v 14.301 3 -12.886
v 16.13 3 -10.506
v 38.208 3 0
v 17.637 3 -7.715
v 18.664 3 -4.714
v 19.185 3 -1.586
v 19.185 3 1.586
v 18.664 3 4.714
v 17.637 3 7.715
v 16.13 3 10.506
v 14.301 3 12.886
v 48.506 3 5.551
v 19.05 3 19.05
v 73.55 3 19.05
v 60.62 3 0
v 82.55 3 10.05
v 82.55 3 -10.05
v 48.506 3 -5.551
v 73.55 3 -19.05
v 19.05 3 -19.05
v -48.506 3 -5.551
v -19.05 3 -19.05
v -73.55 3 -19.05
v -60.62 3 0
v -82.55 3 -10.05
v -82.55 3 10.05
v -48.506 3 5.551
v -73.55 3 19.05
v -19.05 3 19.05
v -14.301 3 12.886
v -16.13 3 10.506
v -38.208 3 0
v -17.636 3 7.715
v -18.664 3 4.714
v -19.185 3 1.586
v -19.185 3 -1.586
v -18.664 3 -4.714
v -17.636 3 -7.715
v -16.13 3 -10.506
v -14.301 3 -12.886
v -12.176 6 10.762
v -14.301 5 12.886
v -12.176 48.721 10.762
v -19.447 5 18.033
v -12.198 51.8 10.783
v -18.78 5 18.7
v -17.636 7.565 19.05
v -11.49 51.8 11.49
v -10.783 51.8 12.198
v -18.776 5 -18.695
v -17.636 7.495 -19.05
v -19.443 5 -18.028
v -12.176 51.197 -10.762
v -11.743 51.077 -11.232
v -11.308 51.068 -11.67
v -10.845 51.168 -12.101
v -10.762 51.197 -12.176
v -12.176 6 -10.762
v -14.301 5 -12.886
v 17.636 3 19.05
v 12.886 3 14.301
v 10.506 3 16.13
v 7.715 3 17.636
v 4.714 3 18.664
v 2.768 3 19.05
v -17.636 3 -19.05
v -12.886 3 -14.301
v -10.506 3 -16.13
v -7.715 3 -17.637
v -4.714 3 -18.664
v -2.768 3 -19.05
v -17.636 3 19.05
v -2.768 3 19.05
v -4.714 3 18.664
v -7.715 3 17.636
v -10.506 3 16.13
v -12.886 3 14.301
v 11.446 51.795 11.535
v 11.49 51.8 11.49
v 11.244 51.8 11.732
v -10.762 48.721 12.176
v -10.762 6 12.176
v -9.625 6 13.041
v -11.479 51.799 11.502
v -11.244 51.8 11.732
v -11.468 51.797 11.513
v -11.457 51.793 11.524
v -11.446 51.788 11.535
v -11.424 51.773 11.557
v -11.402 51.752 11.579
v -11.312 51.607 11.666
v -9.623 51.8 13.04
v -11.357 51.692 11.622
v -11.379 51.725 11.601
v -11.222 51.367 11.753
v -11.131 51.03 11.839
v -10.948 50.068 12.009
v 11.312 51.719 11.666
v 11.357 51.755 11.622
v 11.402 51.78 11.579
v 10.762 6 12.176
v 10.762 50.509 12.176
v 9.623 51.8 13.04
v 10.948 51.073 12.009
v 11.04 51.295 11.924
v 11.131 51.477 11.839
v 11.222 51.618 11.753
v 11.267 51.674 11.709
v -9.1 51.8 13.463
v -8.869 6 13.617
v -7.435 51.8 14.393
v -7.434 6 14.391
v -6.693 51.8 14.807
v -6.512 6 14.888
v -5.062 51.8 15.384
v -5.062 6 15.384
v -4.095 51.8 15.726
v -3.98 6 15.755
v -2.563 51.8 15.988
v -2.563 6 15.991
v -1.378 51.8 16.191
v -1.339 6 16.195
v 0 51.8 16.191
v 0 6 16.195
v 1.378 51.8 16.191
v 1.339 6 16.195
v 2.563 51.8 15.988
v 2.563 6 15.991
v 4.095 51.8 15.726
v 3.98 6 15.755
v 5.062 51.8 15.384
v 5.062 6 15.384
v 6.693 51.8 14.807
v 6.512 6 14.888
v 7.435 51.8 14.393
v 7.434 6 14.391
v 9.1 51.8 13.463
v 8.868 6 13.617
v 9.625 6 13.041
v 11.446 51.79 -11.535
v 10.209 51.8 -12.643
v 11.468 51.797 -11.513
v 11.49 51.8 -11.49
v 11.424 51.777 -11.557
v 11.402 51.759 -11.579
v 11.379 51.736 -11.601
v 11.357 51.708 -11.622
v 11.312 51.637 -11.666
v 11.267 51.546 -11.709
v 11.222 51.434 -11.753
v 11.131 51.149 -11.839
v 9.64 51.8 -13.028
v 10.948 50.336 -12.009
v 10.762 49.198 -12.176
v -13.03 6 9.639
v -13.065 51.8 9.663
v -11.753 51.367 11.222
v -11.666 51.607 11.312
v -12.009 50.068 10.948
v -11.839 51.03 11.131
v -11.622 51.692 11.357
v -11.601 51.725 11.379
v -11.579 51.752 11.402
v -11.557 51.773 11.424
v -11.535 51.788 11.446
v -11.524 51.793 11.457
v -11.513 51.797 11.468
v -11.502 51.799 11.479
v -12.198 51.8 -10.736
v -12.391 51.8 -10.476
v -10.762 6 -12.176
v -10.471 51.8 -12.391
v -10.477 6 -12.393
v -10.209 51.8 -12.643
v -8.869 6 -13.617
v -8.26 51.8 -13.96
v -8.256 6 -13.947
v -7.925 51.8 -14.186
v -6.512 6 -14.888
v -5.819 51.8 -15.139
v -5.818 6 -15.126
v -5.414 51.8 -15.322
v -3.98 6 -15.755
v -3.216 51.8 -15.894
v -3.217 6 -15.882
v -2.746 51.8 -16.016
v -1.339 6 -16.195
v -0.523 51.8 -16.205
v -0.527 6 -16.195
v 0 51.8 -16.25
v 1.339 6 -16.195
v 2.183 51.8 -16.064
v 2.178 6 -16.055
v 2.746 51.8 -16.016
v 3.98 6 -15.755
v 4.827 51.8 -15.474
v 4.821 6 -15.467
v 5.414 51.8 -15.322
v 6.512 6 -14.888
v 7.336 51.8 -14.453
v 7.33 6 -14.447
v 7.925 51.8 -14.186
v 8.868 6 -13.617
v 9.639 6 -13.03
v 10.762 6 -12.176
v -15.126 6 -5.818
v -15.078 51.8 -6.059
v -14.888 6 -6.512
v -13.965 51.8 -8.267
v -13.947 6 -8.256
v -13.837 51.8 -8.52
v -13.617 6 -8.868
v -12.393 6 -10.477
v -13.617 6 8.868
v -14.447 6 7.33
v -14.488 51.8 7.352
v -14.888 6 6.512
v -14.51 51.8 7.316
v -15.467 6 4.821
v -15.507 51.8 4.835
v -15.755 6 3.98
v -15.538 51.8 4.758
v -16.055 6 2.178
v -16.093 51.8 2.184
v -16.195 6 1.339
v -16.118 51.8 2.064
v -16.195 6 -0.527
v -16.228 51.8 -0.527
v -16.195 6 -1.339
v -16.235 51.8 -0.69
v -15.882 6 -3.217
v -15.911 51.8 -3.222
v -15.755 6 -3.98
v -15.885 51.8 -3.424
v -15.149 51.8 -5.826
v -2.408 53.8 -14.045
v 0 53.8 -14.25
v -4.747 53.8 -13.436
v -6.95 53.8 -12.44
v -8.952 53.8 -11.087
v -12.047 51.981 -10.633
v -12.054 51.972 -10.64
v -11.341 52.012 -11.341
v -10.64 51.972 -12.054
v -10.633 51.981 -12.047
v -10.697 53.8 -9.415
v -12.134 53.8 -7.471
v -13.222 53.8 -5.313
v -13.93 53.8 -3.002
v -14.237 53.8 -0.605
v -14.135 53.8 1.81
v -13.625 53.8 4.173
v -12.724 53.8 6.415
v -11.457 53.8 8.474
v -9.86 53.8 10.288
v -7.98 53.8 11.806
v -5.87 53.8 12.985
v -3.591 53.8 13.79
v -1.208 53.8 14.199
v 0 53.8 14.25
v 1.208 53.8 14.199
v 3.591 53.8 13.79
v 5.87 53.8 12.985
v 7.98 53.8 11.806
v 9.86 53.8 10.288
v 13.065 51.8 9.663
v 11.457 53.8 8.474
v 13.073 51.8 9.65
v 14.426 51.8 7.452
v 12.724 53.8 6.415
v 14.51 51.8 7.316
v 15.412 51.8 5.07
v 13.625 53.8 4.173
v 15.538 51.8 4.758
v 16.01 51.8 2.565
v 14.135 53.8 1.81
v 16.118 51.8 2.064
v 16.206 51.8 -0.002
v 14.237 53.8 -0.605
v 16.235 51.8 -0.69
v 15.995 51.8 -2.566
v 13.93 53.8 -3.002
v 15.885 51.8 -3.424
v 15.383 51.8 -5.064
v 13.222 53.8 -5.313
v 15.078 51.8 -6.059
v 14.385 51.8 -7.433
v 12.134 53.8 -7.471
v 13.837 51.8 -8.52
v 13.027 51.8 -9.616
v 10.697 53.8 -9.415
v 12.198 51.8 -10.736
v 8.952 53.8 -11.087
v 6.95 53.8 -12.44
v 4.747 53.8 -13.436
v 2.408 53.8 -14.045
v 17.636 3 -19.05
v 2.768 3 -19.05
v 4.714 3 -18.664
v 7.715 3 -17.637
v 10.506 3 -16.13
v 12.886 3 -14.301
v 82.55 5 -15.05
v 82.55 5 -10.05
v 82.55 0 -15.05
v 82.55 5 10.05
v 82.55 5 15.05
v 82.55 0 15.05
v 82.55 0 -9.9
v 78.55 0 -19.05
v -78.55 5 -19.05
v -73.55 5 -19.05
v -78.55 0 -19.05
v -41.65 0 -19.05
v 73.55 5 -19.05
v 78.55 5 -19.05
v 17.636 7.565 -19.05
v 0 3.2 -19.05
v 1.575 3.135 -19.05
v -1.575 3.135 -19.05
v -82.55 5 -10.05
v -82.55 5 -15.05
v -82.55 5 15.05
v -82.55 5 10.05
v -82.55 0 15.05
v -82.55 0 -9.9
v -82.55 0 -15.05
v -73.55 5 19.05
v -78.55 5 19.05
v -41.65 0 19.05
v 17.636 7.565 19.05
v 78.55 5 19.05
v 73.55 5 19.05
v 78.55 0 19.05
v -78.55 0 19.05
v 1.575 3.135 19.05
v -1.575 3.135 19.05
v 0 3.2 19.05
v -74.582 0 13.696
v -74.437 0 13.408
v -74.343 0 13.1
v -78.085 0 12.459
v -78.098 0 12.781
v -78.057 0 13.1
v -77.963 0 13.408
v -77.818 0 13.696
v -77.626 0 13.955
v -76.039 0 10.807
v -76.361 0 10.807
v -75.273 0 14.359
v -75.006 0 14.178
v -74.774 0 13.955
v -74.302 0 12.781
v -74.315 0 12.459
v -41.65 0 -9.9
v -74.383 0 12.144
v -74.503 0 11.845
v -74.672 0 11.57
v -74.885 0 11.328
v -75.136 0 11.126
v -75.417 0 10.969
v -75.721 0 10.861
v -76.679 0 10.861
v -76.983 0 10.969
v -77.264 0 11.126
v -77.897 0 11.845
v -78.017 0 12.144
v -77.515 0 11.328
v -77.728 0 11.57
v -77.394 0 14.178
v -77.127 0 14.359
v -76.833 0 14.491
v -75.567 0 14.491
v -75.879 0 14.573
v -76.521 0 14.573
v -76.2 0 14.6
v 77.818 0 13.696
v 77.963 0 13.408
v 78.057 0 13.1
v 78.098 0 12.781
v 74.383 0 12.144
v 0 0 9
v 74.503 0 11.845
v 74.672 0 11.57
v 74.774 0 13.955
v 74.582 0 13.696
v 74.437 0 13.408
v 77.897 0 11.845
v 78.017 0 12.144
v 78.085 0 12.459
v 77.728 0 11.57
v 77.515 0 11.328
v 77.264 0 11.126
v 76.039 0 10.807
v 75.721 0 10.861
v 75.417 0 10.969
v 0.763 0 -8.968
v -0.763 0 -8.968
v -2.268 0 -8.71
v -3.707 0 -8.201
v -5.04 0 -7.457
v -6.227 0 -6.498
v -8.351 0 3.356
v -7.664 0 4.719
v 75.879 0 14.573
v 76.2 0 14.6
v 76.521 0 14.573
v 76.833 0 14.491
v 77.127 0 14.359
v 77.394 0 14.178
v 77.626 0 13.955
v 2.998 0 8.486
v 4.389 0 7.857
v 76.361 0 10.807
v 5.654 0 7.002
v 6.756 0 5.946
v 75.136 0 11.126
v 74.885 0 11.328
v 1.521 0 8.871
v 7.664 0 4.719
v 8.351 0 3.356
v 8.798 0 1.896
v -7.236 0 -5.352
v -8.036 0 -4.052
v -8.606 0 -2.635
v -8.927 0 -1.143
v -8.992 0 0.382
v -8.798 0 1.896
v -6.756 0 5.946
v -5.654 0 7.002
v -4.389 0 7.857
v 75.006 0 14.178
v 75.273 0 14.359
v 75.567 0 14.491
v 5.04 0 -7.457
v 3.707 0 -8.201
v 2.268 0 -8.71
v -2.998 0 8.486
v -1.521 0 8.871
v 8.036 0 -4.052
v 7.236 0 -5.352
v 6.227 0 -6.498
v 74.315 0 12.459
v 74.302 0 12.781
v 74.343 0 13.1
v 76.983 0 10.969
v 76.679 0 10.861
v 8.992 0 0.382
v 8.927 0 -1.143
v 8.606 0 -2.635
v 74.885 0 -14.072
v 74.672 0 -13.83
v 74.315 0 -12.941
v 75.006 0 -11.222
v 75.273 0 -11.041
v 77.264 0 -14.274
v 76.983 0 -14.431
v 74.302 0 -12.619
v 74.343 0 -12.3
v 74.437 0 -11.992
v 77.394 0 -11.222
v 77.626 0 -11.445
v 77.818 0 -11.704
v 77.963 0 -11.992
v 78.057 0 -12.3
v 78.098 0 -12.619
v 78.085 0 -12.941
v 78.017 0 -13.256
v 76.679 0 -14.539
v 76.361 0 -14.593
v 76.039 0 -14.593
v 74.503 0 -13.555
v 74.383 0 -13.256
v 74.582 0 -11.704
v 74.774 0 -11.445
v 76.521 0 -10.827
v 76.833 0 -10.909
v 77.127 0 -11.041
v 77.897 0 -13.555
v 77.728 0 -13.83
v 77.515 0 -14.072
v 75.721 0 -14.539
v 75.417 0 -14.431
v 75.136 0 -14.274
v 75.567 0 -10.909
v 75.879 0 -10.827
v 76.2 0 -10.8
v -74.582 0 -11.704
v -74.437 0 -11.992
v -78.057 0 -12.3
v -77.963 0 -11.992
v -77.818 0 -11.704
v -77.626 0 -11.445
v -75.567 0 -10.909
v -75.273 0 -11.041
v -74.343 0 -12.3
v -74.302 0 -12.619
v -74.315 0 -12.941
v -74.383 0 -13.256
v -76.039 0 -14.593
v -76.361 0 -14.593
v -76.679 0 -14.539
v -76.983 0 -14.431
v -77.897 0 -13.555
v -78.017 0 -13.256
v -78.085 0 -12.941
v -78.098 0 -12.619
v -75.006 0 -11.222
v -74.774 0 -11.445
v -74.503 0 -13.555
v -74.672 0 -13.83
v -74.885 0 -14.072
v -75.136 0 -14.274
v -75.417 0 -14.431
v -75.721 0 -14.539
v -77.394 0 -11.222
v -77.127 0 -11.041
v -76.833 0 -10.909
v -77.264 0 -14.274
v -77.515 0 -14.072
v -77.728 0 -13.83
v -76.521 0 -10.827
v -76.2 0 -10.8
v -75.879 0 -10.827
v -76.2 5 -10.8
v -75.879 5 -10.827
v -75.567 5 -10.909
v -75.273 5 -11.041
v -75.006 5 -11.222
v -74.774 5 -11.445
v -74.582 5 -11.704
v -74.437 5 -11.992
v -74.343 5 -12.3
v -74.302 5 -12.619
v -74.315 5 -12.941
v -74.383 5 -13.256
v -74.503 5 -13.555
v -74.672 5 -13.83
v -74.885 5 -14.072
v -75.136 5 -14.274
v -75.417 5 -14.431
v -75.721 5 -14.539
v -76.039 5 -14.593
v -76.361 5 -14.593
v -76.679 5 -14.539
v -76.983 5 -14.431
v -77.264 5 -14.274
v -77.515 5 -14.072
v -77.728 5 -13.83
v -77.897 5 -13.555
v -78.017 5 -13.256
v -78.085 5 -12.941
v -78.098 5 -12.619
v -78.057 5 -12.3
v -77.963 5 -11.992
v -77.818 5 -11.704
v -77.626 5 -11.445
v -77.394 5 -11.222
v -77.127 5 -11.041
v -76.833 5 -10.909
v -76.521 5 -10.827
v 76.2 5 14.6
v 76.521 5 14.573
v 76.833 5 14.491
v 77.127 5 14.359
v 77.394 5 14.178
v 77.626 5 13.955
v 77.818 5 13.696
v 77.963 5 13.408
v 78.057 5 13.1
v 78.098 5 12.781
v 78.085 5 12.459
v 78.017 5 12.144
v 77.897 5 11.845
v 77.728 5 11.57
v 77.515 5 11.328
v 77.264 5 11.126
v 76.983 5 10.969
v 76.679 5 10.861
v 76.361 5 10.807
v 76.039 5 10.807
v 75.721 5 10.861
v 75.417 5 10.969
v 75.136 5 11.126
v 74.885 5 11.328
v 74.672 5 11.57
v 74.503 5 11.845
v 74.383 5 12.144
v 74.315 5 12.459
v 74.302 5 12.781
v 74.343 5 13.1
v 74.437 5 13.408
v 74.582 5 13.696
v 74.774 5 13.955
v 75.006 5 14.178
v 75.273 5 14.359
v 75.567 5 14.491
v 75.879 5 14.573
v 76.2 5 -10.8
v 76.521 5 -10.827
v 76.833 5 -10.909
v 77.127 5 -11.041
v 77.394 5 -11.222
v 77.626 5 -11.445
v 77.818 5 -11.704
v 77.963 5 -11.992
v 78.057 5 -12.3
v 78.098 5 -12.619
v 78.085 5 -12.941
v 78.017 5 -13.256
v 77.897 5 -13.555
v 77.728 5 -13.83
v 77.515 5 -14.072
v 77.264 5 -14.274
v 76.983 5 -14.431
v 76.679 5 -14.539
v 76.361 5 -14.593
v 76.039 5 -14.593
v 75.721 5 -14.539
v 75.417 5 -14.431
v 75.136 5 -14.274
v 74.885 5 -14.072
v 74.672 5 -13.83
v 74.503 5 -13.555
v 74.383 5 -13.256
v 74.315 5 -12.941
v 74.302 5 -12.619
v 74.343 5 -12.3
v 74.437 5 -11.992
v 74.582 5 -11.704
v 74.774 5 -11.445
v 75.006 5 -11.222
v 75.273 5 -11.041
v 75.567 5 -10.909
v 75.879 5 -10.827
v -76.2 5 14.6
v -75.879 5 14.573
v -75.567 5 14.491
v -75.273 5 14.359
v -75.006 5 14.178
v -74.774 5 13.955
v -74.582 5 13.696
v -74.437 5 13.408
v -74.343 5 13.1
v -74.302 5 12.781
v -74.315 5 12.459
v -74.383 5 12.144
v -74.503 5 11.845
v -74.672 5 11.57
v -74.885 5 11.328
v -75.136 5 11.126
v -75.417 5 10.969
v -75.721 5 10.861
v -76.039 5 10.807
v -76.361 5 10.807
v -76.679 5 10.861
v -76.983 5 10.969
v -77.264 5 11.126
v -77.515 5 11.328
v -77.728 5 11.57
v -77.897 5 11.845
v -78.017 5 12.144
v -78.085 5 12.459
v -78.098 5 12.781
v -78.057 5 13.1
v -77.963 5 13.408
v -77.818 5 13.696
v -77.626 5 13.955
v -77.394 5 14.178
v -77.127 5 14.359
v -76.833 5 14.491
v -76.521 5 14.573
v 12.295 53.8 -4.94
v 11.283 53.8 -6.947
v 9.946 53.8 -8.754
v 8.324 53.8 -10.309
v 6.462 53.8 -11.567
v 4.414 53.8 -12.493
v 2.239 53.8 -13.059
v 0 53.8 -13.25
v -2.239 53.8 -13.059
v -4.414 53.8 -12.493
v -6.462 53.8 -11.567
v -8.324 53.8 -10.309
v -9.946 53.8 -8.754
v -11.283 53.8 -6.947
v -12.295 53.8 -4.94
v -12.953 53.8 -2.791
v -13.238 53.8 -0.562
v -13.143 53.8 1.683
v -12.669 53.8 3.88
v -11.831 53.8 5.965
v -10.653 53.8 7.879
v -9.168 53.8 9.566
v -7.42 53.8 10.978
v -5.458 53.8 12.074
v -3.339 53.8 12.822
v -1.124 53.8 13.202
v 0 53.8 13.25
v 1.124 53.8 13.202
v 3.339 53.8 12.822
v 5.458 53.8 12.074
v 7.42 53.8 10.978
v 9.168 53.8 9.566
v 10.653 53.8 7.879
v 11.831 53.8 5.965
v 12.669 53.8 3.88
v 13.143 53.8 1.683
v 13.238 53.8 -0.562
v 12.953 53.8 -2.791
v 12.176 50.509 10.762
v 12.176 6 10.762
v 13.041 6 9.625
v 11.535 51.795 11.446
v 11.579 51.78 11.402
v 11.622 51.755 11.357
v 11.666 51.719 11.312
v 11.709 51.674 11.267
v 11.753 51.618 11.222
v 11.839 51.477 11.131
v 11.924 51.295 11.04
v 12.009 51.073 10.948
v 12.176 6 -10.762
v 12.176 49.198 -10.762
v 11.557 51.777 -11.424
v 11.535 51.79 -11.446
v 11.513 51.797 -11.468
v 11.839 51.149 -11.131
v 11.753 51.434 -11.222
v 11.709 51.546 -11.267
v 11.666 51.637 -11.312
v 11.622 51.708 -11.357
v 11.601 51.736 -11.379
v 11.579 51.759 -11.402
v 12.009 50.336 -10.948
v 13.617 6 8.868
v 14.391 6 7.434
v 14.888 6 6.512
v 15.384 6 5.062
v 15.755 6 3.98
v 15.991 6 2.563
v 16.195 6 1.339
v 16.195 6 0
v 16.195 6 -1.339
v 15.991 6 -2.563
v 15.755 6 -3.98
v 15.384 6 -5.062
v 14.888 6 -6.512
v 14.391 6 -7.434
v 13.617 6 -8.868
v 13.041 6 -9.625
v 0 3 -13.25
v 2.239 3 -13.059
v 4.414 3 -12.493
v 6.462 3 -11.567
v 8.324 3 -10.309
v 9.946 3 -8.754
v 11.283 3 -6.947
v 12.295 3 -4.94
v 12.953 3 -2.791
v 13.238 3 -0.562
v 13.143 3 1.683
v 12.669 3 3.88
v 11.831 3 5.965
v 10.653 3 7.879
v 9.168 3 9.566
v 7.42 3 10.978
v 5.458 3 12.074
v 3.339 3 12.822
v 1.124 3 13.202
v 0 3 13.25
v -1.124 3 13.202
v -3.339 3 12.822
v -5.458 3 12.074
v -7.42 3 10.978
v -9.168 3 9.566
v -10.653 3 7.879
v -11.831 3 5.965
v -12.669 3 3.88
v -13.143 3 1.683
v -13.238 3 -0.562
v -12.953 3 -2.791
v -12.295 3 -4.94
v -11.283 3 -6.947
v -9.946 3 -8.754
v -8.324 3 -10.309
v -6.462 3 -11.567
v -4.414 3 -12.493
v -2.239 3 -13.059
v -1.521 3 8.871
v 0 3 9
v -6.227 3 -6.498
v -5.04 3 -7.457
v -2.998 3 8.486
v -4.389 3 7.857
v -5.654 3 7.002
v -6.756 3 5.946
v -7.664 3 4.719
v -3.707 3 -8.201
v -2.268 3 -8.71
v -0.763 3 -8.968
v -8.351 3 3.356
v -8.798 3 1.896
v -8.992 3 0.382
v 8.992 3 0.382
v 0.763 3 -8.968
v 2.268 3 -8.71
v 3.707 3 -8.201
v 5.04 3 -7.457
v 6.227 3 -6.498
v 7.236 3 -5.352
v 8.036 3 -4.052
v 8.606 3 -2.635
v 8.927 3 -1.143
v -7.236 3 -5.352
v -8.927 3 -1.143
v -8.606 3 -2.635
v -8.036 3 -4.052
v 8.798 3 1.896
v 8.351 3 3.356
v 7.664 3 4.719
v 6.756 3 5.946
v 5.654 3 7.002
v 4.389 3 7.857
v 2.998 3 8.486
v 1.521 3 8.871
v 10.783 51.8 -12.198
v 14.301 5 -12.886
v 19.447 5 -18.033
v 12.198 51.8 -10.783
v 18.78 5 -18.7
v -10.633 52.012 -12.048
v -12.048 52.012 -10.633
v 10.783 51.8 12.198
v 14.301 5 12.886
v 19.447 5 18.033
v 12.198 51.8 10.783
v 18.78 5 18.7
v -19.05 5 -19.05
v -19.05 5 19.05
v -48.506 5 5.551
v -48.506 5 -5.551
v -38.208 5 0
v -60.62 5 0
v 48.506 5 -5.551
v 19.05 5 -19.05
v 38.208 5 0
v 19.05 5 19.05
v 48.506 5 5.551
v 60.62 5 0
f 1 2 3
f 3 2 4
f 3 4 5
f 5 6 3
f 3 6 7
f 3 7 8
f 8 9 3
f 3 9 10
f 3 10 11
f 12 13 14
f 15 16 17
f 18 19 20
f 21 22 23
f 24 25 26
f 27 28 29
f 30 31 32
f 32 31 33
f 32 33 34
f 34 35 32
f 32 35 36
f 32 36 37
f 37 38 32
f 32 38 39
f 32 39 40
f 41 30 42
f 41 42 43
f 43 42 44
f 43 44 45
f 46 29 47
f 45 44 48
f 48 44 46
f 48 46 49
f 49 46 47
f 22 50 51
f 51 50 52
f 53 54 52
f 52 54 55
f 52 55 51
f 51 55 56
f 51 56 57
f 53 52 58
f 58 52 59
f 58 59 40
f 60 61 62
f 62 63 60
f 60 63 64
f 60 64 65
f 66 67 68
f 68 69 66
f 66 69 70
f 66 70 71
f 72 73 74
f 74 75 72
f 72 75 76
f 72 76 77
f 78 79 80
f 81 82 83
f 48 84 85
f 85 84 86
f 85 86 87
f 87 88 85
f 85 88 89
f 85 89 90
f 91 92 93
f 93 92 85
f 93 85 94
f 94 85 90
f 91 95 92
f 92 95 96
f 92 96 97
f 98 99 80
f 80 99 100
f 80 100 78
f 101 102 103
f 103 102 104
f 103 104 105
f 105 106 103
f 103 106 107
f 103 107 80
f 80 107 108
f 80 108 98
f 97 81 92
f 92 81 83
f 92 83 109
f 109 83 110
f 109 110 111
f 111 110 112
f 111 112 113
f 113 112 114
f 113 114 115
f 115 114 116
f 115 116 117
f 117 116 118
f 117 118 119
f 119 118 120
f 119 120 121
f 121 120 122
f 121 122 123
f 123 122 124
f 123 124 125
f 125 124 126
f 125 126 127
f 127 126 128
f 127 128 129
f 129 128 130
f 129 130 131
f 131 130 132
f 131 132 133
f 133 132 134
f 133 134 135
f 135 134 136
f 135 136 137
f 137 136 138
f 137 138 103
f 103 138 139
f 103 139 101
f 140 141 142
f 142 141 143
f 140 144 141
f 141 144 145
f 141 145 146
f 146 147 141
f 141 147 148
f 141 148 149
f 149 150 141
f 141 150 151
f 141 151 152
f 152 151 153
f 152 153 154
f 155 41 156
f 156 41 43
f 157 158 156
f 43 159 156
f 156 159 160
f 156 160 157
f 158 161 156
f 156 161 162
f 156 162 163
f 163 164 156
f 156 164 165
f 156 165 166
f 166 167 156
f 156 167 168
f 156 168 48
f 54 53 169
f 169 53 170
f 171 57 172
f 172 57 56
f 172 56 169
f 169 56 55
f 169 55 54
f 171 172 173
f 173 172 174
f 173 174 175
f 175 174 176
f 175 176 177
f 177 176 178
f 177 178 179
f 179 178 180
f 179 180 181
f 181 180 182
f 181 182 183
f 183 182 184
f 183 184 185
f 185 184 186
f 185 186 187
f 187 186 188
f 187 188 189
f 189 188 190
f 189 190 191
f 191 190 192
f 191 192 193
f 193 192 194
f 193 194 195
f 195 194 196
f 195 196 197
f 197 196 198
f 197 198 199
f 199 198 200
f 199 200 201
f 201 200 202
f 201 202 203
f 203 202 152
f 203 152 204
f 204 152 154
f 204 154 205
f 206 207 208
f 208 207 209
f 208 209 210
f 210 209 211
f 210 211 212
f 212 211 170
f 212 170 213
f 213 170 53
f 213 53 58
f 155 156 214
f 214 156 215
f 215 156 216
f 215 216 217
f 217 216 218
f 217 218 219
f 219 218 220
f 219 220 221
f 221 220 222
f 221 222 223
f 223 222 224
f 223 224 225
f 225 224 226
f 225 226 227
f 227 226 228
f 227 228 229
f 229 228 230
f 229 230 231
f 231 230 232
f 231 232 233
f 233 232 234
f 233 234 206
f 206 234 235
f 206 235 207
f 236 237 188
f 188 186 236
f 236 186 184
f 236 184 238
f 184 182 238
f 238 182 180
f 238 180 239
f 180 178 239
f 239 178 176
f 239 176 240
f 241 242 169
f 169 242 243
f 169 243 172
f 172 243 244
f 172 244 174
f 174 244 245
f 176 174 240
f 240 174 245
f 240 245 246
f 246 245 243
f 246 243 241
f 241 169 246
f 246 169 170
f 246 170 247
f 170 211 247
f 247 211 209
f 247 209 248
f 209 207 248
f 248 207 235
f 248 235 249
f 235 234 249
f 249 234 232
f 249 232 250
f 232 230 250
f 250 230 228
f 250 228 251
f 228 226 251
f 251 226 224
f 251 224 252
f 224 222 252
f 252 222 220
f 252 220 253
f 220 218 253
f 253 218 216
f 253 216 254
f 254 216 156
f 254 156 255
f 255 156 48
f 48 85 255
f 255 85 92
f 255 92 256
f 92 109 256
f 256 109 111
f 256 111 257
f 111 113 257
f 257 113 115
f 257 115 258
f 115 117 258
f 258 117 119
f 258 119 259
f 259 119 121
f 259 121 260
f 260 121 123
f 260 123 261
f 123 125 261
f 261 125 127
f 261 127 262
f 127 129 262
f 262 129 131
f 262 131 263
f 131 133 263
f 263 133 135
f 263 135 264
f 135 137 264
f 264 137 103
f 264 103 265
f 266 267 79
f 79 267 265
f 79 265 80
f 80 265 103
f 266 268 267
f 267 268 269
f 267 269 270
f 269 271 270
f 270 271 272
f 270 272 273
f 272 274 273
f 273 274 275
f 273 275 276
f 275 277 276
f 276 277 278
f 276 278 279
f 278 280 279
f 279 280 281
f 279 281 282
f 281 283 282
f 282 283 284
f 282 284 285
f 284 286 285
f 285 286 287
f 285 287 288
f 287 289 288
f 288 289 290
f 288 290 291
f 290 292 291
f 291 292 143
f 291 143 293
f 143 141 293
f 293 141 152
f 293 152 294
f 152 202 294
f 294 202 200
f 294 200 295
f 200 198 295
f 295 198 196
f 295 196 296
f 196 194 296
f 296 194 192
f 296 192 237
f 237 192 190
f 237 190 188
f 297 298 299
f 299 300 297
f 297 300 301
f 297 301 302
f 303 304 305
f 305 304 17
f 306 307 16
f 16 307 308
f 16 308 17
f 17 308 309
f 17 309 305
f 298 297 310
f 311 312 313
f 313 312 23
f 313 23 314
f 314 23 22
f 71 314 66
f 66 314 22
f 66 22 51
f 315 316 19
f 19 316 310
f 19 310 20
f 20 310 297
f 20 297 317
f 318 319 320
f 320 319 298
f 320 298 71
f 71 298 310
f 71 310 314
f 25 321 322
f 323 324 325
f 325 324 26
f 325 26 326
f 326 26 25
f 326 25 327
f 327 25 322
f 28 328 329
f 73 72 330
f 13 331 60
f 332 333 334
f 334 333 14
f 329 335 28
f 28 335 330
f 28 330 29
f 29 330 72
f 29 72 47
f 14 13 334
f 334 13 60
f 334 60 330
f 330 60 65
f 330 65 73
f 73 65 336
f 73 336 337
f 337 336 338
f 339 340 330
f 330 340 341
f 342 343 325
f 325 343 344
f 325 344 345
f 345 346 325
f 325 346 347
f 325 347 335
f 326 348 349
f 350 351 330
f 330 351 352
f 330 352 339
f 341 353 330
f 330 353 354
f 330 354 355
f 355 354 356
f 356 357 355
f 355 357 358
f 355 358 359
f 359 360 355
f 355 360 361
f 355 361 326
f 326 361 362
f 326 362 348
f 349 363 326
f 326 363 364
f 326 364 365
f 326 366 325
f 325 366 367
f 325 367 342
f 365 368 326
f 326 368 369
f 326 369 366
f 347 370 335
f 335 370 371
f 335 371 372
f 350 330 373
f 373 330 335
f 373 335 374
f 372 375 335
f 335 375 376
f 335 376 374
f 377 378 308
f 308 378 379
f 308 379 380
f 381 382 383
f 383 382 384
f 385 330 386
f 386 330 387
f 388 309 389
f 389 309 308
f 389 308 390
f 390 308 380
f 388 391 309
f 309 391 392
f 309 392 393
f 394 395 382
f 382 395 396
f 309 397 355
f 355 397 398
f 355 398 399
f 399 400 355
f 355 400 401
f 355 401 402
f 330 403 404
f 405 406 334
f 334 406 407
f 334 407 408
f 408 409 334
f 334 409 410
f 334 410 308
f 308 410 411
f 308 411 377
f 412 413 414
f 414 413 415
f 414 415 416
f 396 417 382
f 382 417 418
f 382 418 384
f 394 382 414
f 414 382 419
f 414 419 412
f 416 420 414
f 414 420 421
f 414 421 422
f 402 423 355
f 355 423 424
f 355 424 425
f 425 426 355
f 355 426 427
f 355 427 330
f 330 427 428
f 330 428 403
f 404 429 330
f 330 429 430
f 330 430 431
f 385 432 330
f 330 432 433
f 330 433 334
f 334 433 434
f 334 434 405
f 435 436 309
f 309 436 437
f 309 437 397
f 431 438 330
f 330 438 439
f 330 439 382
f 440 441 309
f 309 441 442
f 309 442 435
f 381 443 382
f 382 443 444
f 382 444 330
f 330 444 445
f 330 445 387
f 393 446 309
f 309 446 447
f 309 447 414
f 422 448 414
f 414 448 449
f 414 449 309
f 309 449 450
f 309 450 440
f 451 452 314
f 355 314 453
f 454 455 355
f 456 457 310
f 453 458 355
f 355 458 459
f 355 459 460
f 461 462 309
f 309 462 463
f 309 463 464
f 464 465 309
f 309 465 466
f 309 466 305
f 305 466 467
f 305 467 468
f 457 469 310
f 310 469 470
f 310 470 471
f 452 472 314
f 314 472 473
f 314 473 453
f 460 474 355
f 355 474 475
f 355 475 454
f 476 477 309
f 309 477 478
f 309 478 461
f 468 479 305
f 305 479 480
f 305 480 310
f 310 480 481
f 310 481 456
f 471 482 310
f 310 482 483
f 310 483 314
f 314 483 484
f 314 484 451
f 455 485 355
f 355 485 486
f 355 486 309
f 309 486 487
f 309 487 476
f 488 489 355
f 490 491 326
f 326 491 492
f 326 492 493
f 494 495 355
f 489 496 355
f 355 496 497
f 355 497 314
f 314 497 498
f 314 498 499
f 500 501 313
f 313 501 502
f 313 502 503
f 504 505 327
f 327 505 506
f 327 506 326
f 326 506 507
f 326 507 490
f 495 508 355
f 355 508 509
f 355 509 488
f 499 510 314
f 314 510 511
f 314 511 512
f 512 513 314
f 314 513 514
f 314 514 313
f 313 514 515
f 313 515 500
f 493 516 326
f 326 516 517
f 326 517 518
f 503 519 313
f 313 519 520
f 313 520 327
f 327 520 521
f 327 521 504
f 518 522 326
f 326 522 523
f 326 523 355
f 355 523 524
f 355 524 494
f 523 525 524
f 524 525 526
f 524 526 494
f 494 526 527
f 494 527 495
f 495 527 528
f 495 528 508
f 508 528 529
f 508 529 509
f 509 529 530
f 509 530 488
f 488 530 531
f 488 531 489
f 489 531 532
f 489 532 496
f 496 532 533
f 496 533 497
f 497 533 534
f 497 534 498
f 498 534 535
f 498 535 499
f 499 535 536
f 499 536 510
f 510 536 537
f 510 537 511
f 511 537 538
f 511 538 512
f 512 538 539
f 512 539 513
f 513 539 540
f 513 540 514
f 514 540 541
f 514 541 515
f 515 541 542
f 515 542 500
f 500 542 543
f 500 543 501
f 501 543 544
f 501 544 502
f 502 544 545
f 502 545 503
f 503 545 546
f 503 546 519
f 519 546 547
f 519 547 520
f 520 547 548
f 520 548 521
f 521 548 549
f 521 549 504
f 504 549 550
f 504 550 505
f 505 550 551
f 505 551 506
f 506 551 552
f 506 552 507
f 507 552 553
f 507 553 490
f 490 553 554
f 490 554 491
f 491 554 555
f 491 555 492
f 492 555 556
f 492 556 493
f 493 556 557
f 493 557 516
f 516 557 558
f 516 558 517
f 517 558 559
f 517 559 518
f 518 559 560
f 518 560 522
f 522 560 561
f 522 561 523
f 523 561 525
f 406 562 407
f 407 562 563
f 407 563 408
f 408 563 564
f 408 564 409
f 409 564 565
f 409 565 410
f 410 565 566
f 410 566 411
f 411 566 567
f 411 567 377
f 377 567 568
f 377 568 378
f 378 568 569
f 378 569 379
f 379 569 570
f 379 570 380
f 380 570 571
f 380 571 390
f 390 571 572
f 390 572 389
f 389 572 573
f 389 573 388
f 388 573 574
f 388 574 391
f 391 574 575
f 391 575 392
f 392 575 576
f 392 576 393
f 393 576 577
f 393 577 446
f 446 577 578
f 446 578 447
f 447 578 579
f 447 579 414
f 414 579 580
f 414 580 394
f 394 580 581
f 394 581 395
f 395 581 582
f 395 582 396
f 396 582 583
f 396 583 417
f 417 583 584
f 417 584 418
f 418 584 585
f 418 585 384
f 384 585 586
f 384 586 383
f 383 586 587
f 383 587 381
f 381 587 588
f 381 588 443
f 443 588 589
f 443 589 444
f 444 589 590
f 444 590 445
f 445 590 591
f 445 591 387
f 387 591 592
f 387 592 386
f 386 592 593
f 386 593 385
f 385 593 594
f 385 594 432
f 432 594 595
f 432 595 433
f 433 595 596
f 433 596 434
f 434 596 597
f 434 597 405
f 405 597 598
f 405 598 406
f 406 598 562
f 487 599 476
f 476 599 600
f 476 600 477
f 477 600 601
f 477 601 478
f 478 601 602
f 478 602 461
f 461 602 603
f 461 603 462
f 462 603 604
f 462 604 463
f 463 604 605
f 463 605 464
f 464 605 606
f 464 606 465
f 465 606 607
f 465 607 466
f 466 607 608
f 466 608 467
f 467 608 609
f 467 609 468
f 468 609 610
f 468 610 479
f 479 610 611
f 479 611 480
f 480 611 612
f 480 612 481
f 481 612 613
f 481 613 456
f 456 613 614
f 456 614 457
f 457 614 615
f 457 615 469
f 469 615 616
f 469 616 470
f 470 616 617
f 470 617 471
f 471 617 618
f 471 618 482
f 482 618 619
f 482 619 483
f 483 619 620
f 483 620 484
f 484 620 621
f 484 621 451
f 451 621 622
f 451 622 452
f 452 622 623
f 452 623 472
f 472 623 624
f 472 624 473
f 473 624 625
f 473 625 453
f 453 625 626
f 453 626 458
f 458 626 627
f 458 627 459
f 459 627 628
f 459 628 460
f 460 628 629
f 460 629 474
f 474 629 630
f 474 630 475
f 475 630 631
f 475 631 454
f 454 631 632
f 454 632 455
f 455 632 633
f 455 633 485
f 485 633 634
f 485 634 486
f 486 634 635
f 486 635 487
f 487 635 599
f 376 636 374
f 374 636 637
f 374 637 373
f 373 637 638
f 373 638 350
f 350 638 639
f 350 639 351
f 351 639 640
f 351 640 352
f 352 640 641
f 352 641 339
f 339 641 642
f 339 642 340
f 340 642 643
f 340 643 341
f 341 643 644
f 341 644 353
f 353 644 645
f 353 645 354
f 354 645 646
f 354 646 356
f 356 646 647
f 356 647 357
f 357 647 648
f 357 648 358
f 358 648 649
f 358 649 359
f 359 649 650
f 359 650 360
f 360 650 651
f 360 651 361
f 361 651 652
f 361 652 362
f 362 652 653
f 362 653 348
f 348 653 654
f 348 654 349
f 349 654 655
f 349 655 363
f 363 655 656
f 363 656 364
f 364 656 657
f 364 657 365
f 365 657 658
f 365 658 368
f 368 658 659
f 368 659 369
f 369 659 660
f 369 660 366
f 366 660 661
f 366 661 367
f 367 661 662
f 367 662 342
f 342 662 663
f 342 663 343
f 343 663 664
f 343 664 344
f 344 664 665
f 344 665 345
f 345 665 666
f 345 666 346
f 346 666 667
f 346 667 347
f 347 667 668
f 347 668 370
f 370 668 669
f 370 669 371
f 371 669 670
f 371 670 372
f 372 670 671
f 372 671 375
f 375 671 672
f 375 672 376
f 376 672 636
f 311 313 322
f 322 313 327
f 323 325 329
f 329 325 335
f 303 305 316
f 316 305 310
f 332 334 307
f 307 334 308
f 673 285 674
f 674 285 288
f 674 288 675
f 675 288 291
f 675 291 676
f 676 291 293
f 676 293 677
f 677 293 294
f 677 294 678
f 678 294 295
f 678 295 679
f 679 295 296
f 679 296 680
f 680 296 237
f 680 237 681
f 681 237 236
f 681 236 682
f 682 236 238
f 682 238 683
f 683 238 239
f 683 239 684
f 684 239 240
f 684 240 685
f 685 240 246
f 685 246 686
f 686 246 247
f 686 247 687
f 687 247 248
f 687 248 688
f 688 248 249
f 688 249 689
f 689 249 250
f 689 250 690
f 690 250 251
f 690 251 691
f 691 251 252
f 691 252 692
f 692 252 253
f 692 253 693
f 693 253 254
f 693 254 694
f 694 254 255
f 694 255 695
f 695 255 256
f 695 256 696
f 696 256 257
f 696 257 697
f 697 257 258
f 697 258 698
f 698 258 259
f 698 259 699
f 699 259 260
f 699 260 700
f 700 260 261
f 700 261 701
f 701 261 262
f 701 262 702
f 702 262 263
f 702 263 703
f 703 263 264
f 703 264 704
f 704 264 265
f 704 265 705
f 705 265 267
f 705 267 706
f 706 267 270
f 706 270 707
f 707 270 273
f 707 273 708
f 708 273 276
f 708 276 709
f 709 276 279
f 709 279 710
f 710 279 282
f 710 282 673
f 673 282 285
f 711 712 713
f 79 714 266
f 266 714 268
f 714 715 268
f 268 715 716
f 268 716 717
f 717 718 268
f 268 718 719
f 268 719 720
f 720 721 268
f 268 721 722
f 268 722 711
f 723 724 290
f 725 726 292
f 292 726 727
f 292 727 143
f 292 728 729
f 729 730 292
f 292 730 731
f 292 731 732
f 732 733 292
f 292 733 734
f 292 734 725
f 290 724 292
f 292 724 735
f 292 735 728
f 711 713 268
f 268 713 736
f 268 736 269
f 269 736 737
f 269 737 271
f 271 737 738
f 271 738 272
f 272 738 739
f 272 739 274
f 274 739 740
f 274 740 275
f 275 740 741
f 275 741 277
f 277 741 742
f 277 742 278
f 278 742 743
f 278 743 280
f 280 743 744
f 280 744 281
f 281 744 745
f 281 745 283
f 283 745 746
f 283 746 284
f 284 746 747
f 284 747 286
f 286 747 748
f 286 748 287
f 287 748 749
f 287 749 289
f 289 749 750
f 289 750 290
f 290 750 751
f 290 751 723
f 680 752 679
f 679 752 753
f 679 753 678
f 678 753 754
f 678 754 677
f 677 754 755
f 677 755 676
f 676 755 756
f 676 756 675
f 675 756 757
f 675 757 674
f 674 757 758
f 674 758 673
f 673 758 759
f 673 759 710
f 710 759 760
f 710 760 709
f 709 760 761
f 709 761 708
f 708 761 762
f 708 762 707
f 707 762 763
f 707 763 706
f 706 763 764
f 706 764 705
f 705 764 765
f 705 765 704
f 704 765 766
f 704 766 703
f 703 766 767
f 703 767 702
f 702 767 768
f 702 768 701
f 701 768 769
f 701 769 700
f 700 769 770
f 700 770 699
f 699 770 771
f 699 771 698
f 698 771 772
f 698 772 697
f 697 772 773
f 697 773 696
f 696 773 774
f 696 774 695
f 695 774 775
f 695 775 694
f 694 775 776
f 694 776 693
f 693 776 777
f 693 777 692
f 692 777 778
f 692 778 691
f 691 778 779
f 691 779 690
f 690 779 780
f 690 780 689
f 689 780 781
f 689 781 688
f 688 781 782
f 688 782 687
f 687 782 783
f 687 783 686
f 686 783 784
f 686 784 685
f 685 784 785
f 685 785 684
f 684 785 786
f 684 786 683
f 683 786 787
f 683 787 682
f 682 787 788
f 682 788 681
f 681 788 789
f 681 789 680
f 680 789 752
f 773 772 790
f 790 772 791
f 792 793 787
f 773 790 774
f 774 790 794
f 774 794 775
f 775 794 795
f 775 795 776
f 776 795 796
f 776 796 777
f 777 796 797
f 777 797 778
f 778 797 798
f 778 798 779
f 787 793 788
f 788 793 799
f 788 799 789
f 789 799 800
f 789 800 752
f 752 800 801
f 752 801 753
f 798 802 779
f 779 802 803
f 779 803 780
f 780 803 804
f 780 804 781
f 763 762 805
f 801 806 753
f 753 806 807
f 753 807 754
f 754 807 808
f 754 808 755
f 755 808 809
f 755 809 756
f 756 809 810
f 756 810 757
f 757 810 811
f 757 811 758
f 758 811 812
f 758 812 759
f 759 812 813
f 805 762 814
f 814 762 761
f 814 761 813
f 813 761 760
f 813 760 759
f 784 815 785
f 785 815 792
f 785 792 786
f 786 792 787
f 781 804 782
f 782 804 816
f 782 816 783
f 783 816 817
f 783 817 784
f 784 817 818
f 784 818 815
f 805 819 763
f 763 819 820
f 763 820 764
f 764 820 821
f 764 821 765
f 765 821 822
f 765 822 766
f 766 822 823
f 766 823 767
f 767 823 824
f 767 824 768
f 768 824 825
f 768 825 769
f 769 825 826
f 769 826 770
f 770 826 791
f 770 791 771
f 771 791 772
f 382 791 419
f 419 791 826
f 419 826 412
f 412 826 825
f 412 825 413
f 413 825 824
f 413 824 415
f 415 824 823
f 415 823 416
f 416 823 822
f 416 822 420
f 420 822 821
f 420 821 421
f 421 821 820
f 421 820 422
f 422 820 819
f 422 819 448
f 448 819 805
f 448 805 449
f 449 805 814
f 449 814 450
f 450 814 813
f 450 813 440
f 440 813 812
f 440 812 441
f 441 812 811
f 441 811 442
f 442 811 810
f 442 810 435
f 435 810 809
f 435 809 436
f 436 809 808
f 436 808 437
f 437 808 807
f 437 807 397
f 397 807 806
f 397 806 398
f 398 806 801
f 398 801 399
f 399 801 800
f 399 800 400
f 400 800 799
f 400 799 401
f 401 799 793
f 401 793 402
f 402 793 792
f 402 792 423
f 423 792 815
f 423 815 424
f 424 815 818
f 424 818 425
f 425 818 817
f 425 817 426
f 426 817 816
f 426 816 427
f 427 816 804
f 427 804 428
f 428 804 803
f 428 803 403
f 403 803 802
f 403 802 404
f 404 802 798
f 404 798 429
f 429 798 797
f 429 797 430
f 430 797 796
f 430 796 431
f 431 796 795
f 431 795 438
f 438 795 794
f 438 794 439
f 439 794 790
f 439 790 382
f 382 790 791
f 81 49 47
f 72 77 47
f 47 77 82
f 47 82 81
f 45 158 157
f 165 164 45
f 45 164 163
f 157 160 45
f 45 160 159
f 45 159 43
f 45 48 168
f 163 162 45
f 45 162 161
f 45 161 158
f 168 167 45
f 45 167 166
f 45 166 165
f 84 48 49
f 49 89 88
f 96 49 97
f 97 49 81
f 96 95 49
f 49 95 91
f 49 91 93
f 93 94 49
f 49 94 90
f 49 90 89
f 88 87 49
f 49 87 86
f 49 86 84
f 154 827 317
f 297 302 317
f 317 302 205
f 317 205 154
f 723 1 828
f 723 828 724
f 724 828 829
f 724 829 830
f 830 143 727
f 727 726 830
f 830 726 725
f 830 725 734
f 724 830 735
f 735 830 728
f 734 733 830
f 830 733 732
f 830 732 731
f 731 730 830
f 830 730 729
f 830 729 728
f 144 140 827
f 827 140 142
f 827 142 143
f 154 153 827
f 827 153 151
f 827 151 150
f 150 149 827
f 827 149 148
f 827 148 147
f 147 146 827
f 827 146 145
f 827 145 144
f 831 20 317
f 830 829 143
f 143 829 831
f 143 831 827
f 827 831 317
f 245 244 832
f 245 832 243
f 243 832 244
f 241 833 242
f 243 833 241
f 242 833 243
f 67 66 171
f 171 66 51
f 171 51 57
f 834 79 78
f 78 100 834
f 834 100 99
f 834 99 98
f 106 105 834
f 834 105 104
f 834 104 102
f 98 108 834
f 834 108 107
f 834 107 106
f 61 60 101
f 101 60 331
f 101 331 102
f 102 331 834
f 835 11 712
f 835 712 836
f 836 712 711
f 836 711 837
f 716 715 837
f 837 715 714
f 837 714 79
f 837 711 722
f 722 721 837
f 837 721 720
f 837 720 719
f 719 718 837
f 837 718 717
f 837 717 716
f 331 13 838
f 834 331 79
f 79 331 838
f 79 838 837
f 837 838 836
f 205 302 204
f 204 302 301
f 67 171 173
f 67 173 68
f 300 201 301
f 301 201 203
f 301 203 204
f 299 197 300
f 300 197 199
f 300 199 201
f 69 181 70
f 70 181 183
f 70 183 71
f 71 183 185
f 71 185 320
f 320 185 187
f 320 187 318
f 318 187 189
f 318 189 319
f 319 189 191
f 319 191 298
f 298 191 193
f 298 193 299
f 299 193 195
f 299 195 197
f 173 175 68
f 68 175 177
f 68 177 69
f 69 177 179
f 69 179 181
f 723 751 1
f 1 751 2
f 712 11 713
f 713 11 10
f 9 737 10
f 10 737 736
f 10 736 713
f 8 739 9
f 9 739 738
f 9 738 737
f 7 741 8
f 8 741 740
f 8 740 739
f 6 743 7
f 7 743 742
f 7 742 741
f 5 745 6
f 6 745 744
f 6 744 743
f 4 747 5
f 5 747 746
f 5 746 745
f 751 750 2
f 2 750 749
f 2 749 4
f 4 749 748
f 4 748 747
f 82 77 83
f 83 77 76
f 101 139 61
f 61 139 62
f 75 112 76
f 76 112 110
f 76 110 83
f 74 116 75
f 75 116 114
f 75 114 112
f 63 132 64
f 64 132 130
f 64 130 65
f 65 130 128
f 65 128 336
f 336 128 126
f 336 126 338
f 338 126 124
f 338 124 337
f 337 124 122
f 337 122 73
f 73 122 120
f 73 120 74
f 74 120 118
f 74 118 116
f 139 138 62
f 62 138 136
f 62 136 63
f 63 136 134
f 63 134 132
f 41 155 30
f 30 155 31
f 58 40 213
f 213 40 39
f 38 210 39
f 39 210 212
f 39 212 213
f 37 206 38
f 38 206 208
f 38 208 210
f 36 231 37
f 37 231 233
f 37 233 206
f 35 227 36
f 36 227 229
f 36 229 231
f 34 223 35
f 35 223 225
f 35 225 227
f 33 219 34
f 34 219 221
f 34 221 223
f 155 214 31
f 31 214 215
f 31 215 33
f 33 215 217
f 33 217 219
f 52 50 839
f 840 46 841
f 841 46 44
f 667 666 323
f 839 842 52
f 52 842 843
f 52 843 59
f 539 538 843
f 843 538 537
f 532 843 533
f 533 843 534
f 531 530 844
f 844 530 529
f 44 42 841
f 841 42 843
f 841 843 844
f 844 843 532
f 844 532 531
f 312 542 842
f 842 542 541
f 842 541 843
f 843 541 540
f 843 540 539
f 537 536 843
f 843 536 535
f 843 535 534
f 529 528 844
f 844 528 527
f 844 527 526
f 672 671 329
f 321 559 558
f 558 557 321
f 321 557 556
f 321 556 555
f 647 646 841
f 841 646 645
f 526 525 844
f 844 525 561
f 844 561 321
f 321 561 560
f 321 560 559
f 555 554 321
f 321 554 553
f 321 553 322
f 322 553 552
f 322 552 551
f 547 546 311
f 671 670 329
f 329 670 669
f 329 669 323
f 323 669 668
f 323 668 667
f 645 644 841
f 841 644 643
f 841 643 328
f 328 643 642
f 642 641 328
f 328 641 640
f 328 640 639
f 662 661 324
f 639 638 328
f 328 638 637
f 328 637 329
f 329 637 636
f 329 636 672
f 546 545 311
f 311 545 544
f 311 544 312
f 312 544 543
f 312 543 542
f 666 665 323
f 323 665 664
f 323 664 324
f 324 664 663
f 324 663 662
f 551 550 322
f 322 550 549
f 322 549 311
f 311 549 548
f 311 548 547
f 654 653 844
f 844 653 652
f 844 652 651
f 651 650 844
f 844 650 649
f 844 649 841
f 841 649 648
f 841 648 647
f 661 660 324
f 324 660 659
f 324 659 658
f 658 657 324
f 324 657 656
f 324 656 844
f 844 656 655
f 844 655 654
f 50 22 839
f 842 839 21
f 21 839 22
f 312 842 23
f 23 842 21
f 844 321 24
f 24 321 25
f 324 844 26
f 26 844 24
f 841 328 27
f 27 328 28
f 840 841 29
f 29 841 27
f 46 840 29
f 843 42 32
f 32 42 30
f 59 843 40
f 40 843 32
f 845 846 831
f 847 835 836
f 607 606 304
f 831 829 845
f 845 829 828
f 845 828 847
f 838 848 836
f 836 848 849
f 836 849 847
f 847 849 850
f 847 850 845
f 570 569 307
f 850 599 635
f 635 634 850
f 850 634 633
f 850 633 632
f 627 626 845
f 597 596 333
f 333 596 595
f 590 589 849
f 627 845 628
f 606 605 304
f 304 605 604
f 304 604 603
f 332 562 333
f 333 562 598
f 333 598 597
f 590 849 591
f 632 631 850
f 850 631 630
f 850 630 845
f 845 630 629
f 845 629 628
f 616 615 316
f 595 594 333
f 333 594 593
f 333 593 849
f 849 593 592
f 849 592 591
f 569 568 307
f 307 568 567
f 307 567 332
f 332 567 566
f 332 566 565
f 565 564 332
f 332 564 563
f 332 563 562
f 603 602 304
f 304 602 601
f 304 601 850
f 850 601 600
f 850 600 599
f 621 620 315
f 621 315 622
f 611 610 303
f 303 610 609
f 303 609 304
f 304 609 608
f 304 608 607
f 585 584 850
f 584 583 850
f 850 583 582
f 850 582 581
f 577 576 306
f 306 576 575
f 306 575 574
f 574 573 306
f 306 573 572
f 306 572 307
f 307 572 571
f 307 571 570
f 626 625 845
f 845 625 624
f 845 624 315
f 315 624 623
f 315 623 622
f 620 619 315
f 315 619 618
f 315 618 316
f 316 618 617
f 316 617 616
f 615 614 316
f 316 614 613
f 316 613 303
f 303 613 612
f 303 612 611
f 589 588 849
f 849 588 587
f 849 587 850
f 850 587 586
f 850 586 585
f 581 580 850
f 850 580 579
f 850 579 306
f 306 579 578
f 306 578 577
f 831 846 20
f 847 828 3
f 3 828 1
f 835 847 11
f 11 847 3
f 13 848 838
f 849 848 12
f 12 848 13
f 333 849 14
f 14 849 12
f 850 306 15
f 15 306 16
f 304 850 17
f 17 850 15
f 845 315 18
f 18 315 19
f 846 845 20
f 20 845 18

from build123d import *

# Parameters (mm, degrees)
SKETCH1_W                = 165.1
SKETCH1_H                = 38.1
BOSS_EXTRUDE1_DEPTH      = 3
SKETCH2_R                = 1.9
CUT_EXTRUDE1_DEPTH       = 3
CHAMFER1_SIZE            = 4
SKETCH3_R                = 16.25
SKETCH3_R_2              = 13.25
BOSS_EXTRUDE2_DEPTH      = 50.8
SKETCH4_R                = 9
CUT_EXTRUDE2_DEPTH       = 50.8
CHAMFER2_SIZE            = 2
BOSS_EXTRUDE5_DEPTH      = 1
BOSS_EXTRUDE5_DEPTH_BACK = 1
BOSS_EXTRUDE6_DEPTH      = 1
BOSS_EXTRUDE6_DEPTH_BACK = 1
SKETCH10_W               = 48.027930054
SKETCH10_H               = 3.446227712
SKETCH10_W_2             = 45.229873501
SKETCH10_H_2             = 2.308850273
CUT_EXTRUDE3_DEPTH       = 51
CHAMFER3_SIZE            = 3
BOSS_EXTRUDE7_START      = 2
SKETCH12_R               = 1.9
BOSS_EXTRUDE7_DEPTH      = 2


with BuildPart() as part:
    # Sketch1 → Boss-Extrude1 (new body)
    with BuildSketch(Plane(origin=(0, 0, 0), x_dir=(1, 0, 0), z_dir=(0, 1, 0))):
        Rectangle(SKETCH1_W, SKETCH1_H)
    extrude(amount=BOSS_EXTRUDE1_DEPTH)

    # Sketch2 → Cut-Extrude1 (cut)
    with BuildSketch(Plane(origin=(0, 3, 0), x_dir=(1, 0, 0), z_dir=(0, 1, 0))):
        with Locations(Location((-76.2, 12.7, 0), (0, 0, 270))):
            Circle(SKETCH2_R)
        with Locations(Location((-76.2, -12.7, 0), (0, 0, 270))):
            Circle(SKETCH2_R)
        with Locations(Location((76.2, 12.7, 0), (0, 0, 270))):
            Circle(SKETCH2_R)
        with Locations(Location((76.2, -12.7, 0), (0, 0, 270))):
            Circle(SKETCH2_R)
    extrude(amount=-CUT_EXTRUDE1_DEPTH, mode=Mode.SUBTRACT)

    # Chamfer1
    chamfer1_edges = [part.edges().sort_by_distance(p)[0] for p in [
        (82.55, 1.5, 19.05),
        (-82.55, 1.5, 19.05),
        (-82.55, 1.5, -19.05),
        (82.55, 1.5, -19.05),
    ]]
    chamfer(chamfer1_edges, length=CHAMFER1_SIZE)

    # Sketch3 → Boss-Extrude2 (add)
    with BuildSketch(Plane(origin=(0, 3, 0), x_dir=(1, 0, 0), z_dir=(0, 1, 0))):
        with Locations(Location((0, 0, 0), (0, 0, 270))):
            Circle(SKETCH3_R)
        with Locations(Location((0, 0, 0), (0, 0, 270))):
            Circle(SKETCH3_R_2, mode=Mode.SUBTRACT)
    extrude(amount=BOSS_EXTRUDE2_DEPTH)

    # Sketch4 → Cut-Extrude2 (cut)
    with BuildSketch(Plane(origin=(0, 3, 0), x_dir=(1, 0, 0), z_dir=(0, 1, 0))):
        with Locations(Location((0, 0, 0), (0, 0, 270))):
            Circle(SKETCH4_R)
    extrude(amount=-CUT_EXTRUDE2_DEPTH, mode=Mode.SUBTRACT)

    # Chamfer2
    chamfer2_edges = [part.edges().sort_by_distance(p)[0] for p in [
        (0, 53.8, -16.25),
    ]]
    chamfer(chamfer2_edges, length=CHAMFER2_SIZE)

    # Sketch8 → Boss-Extrude5 (add, two sides: drawn at the far end of the back side and taken through both)
    with BuildSketch(Plane(origin=(0, 0, 0), x_dir=(0.7071067811865465, 0, -0.7071067811865486), z_dir=(0.7071067811865486, 0, 0.7071067811865465)).offset(-BOSS_EXTRUDE5_DEPTH_BACK)):
        Polygon((-16.25, 51.8), (-26.940768363, 3), (-15.761884805, 3), align=None)
        Polygon((16.25, 51.8), (26.940768363, 3), (15.672352265, 3), align=None)
    extrude(amount=BOSS_EXTRUDE5_DEPTH + BOSS_EXTRUDE5_DEPTH_BACK)

    # Sketch9 → Boss-Extrude6 (add, two sides: drawn at the far end of the back side and taken through both)
    with BuildSketch(Plane(origin=(0, 0, 0), x_dir=(-0.7071067811865513, 0, -0.7071067811865437), z_dir=(0.7071067811865437, 0, -0.7071067811865513)).offset(-BOSS_EXTRUDE6_DEPTH_BACK)):
        Polygon((16.03800498, 52.01199502), (26.940768363, 3), (15.332503188, 3), align=None)
        Polygon((-15.086213557, 3), (-16.25, 51.8), (-26.940768363, 3), align=None)
    extrude(amount=BOSS_EXTRUDE6_DEPTH + BOSS_EXTRUDE6_DEPTH_BACK)

    # Sketch10 → Cut-Extrude3 (cut)
    with BuildSketch(Plane.XZ):
        with Locations((0.613627604, 20.773113856)):
            Rectangle(SKETCH10_W, SKETCH10_H)
        with Locations((-0.375624438, -20.204425136)):
            Rectangle(SKETCH10_W_2, SKETCH10_H_2)
    extrude(amount=-CUT_EXTRUDE3_DEPTH, mode=Mode.SUBTRACT)

    # Chamfer3
    # the kernel refuses this chamfer: 3 mm, written as the material it adds along each edge
    with BuildSketch(Plane(origin=(0, 3, 0), x_dir=(-0.363517845184437, 0, -0.9315872349020589), z_dir=(0.9315872349020589, 0, -0.363517845184437))) as chamfer3_piece_1:
        Polygon((16.25 + CHAMFER3_SIZE, 0), (16.25, CHAMFER3_SIZE), (16.25, 0), align=None)
    revolve(axis=Axis((0, 3, 0), (0, 1, 0)), revolution_arc=137.36720641)
    with BuildSketch(Plane(origin=(0, 3, 0), x_dir=(0.3635178451844628, 0, 0.9315872349020488), z_dir=(-0.9315872349020488, 0, 0.3635178451844628))) as chamfer3_piece_2:
        Polygon((16.25 + CHAMFER3_SIZE, 0), (16.25, CHAMFER3_SIZE), (16.25, 0), align=None)
    revolve(axis=Axis((0, 3, 0), (0, 1, 0)), revolution_arc=137.36720641)
    with BuildSketch(Plane(origin=(0, 3, 0), x_dir=(-0.9315872349020518, 0, 0.363517845184455), z_dir=(-0.363517845184455, 0, -0.9315872349020518))) as chamfer3_piece_3_section:
        Polygon((16.25, CHAMFER3_SIZE), (16.25 + CHAMFER3_SIZE, 0), (16.25, 0), align=None)
    chamfer3_piece_3 = revolve(axis=Axis((0, 3, 0), (0, 1, 0)), revolution_arc=137.36720641, mode=Mode.PRIVATE)
    chamfer3_piece_3 = split(chamfer3_piece_3, bisect_by=Plane(origin=(-14.04599825, 3.973842114, 19.05), z_dir=(0, 0, -1)), keep=Keep.TOP, mode=Mode.PRIVATE)
    add(chamfer3_piece_3)
    with BuildSketch(Plane(origin=(0, 3, 0), x_dir=(0.9315872349020476, 0, -0.3635178451844656), z_dir=(0.3635178451844656, 0, 0.9315872349020476))) as chamfer3_piece_4_section:
        Polygon((16.25 + CHAMFER3_SIZE, 0), (16.25, CHAMFER3_SIZE), (16.25, 0), align=None)
    chamfer3_piece_4 = revolve(axis=Axis((0, 3, 0), (0, 1, 0)), revolution_arc=137.36720641, mode=Mode.PRIVATE)
    chamfer3_piece_4 = split(chamfer3_piece_4, bisect_by=Plane(origin=(14.045998398, 3.973842011, -19.05), z_dir=(0, 0, 1)), keep=Keep.TOP, mode=Mode.PRIVATE)
    add(chamfer3_piece_4)

    # Sketch12 → Boss-Extrude7 (add)
    # profile 1 of 2: a face of its own
    with BuildSketch(Plane(origin=(0, 3, 0), x_dir=(1, 0, 0), z_dir=(0, 1, 0)).offset(BOSS_EXTRUDE7_START)):
        Polygon((-19.05, 19.05), (-48.506345534, 5.551107795), (-73.55, 19.05), (-78.55, 19.05), (-82.55, 15.05), (-82.55, 10.05), (-60.619587629, 0), (-82.55, -10.05), (-82.55, -15.05), (-78.55, -19.05), (-73.55, -19.05), (-48.506345534, -5.551107795), (-19.05, -19.05), (-14.300533501, -12.886319939), (-38.207720772, 0), (-14.300533501, 12.886319939), align=None)
        with Locations(Location((-76.2, 12.7, 0), (0, 0, 270))):
            Circle(SKETCH12_R, mode=Mode.SUBTRACT)
        with Locations(Location((-76.2, -12.7, 0), (0, 0, 270))):
            Circle(SKETCH12_R, mode=Mode.SUBTRACT)
    # profile 2 of 2: a face of its own
    with BuildSketch(Plane(origin=(0, 3, 0), x_dir=(1, 0, 0), z_dir=(0, 1, 0)).offset(BOSS_EXTRUDE7_START)):
        Polygon((14.300533501, 12.886319939), (38.207720772, 0), (14.300533501, -12.886319939), (19.05, -19.05), (48.506345534, -5.551107795), (73.55, -19.05), (78.55, -19.05), (82.55, -15.05), (82.55, -10.05), (60.619587629, 0), (82.55, 10.05), (82.55, 15.05), (78.55, 19.05), (73.55, 19.05), (48.506345534, 5.551107795), (19.05, 19.05), align=None)
        with Locations(Location((76.2, 12.7, 0), (0, 0, 270))):
            Circle(SKETCH12_R, mode=Mode.SUBTRACT)
        with Locations(Location((76.2, -12.7, 0), (0, 0, 270))):
            Circle(SKETCH12_R, mode=Mode.SUBTRACT)
    extrude(amount=-BOSS_EXTRUDE7_DEPTH)


solid = part.part
